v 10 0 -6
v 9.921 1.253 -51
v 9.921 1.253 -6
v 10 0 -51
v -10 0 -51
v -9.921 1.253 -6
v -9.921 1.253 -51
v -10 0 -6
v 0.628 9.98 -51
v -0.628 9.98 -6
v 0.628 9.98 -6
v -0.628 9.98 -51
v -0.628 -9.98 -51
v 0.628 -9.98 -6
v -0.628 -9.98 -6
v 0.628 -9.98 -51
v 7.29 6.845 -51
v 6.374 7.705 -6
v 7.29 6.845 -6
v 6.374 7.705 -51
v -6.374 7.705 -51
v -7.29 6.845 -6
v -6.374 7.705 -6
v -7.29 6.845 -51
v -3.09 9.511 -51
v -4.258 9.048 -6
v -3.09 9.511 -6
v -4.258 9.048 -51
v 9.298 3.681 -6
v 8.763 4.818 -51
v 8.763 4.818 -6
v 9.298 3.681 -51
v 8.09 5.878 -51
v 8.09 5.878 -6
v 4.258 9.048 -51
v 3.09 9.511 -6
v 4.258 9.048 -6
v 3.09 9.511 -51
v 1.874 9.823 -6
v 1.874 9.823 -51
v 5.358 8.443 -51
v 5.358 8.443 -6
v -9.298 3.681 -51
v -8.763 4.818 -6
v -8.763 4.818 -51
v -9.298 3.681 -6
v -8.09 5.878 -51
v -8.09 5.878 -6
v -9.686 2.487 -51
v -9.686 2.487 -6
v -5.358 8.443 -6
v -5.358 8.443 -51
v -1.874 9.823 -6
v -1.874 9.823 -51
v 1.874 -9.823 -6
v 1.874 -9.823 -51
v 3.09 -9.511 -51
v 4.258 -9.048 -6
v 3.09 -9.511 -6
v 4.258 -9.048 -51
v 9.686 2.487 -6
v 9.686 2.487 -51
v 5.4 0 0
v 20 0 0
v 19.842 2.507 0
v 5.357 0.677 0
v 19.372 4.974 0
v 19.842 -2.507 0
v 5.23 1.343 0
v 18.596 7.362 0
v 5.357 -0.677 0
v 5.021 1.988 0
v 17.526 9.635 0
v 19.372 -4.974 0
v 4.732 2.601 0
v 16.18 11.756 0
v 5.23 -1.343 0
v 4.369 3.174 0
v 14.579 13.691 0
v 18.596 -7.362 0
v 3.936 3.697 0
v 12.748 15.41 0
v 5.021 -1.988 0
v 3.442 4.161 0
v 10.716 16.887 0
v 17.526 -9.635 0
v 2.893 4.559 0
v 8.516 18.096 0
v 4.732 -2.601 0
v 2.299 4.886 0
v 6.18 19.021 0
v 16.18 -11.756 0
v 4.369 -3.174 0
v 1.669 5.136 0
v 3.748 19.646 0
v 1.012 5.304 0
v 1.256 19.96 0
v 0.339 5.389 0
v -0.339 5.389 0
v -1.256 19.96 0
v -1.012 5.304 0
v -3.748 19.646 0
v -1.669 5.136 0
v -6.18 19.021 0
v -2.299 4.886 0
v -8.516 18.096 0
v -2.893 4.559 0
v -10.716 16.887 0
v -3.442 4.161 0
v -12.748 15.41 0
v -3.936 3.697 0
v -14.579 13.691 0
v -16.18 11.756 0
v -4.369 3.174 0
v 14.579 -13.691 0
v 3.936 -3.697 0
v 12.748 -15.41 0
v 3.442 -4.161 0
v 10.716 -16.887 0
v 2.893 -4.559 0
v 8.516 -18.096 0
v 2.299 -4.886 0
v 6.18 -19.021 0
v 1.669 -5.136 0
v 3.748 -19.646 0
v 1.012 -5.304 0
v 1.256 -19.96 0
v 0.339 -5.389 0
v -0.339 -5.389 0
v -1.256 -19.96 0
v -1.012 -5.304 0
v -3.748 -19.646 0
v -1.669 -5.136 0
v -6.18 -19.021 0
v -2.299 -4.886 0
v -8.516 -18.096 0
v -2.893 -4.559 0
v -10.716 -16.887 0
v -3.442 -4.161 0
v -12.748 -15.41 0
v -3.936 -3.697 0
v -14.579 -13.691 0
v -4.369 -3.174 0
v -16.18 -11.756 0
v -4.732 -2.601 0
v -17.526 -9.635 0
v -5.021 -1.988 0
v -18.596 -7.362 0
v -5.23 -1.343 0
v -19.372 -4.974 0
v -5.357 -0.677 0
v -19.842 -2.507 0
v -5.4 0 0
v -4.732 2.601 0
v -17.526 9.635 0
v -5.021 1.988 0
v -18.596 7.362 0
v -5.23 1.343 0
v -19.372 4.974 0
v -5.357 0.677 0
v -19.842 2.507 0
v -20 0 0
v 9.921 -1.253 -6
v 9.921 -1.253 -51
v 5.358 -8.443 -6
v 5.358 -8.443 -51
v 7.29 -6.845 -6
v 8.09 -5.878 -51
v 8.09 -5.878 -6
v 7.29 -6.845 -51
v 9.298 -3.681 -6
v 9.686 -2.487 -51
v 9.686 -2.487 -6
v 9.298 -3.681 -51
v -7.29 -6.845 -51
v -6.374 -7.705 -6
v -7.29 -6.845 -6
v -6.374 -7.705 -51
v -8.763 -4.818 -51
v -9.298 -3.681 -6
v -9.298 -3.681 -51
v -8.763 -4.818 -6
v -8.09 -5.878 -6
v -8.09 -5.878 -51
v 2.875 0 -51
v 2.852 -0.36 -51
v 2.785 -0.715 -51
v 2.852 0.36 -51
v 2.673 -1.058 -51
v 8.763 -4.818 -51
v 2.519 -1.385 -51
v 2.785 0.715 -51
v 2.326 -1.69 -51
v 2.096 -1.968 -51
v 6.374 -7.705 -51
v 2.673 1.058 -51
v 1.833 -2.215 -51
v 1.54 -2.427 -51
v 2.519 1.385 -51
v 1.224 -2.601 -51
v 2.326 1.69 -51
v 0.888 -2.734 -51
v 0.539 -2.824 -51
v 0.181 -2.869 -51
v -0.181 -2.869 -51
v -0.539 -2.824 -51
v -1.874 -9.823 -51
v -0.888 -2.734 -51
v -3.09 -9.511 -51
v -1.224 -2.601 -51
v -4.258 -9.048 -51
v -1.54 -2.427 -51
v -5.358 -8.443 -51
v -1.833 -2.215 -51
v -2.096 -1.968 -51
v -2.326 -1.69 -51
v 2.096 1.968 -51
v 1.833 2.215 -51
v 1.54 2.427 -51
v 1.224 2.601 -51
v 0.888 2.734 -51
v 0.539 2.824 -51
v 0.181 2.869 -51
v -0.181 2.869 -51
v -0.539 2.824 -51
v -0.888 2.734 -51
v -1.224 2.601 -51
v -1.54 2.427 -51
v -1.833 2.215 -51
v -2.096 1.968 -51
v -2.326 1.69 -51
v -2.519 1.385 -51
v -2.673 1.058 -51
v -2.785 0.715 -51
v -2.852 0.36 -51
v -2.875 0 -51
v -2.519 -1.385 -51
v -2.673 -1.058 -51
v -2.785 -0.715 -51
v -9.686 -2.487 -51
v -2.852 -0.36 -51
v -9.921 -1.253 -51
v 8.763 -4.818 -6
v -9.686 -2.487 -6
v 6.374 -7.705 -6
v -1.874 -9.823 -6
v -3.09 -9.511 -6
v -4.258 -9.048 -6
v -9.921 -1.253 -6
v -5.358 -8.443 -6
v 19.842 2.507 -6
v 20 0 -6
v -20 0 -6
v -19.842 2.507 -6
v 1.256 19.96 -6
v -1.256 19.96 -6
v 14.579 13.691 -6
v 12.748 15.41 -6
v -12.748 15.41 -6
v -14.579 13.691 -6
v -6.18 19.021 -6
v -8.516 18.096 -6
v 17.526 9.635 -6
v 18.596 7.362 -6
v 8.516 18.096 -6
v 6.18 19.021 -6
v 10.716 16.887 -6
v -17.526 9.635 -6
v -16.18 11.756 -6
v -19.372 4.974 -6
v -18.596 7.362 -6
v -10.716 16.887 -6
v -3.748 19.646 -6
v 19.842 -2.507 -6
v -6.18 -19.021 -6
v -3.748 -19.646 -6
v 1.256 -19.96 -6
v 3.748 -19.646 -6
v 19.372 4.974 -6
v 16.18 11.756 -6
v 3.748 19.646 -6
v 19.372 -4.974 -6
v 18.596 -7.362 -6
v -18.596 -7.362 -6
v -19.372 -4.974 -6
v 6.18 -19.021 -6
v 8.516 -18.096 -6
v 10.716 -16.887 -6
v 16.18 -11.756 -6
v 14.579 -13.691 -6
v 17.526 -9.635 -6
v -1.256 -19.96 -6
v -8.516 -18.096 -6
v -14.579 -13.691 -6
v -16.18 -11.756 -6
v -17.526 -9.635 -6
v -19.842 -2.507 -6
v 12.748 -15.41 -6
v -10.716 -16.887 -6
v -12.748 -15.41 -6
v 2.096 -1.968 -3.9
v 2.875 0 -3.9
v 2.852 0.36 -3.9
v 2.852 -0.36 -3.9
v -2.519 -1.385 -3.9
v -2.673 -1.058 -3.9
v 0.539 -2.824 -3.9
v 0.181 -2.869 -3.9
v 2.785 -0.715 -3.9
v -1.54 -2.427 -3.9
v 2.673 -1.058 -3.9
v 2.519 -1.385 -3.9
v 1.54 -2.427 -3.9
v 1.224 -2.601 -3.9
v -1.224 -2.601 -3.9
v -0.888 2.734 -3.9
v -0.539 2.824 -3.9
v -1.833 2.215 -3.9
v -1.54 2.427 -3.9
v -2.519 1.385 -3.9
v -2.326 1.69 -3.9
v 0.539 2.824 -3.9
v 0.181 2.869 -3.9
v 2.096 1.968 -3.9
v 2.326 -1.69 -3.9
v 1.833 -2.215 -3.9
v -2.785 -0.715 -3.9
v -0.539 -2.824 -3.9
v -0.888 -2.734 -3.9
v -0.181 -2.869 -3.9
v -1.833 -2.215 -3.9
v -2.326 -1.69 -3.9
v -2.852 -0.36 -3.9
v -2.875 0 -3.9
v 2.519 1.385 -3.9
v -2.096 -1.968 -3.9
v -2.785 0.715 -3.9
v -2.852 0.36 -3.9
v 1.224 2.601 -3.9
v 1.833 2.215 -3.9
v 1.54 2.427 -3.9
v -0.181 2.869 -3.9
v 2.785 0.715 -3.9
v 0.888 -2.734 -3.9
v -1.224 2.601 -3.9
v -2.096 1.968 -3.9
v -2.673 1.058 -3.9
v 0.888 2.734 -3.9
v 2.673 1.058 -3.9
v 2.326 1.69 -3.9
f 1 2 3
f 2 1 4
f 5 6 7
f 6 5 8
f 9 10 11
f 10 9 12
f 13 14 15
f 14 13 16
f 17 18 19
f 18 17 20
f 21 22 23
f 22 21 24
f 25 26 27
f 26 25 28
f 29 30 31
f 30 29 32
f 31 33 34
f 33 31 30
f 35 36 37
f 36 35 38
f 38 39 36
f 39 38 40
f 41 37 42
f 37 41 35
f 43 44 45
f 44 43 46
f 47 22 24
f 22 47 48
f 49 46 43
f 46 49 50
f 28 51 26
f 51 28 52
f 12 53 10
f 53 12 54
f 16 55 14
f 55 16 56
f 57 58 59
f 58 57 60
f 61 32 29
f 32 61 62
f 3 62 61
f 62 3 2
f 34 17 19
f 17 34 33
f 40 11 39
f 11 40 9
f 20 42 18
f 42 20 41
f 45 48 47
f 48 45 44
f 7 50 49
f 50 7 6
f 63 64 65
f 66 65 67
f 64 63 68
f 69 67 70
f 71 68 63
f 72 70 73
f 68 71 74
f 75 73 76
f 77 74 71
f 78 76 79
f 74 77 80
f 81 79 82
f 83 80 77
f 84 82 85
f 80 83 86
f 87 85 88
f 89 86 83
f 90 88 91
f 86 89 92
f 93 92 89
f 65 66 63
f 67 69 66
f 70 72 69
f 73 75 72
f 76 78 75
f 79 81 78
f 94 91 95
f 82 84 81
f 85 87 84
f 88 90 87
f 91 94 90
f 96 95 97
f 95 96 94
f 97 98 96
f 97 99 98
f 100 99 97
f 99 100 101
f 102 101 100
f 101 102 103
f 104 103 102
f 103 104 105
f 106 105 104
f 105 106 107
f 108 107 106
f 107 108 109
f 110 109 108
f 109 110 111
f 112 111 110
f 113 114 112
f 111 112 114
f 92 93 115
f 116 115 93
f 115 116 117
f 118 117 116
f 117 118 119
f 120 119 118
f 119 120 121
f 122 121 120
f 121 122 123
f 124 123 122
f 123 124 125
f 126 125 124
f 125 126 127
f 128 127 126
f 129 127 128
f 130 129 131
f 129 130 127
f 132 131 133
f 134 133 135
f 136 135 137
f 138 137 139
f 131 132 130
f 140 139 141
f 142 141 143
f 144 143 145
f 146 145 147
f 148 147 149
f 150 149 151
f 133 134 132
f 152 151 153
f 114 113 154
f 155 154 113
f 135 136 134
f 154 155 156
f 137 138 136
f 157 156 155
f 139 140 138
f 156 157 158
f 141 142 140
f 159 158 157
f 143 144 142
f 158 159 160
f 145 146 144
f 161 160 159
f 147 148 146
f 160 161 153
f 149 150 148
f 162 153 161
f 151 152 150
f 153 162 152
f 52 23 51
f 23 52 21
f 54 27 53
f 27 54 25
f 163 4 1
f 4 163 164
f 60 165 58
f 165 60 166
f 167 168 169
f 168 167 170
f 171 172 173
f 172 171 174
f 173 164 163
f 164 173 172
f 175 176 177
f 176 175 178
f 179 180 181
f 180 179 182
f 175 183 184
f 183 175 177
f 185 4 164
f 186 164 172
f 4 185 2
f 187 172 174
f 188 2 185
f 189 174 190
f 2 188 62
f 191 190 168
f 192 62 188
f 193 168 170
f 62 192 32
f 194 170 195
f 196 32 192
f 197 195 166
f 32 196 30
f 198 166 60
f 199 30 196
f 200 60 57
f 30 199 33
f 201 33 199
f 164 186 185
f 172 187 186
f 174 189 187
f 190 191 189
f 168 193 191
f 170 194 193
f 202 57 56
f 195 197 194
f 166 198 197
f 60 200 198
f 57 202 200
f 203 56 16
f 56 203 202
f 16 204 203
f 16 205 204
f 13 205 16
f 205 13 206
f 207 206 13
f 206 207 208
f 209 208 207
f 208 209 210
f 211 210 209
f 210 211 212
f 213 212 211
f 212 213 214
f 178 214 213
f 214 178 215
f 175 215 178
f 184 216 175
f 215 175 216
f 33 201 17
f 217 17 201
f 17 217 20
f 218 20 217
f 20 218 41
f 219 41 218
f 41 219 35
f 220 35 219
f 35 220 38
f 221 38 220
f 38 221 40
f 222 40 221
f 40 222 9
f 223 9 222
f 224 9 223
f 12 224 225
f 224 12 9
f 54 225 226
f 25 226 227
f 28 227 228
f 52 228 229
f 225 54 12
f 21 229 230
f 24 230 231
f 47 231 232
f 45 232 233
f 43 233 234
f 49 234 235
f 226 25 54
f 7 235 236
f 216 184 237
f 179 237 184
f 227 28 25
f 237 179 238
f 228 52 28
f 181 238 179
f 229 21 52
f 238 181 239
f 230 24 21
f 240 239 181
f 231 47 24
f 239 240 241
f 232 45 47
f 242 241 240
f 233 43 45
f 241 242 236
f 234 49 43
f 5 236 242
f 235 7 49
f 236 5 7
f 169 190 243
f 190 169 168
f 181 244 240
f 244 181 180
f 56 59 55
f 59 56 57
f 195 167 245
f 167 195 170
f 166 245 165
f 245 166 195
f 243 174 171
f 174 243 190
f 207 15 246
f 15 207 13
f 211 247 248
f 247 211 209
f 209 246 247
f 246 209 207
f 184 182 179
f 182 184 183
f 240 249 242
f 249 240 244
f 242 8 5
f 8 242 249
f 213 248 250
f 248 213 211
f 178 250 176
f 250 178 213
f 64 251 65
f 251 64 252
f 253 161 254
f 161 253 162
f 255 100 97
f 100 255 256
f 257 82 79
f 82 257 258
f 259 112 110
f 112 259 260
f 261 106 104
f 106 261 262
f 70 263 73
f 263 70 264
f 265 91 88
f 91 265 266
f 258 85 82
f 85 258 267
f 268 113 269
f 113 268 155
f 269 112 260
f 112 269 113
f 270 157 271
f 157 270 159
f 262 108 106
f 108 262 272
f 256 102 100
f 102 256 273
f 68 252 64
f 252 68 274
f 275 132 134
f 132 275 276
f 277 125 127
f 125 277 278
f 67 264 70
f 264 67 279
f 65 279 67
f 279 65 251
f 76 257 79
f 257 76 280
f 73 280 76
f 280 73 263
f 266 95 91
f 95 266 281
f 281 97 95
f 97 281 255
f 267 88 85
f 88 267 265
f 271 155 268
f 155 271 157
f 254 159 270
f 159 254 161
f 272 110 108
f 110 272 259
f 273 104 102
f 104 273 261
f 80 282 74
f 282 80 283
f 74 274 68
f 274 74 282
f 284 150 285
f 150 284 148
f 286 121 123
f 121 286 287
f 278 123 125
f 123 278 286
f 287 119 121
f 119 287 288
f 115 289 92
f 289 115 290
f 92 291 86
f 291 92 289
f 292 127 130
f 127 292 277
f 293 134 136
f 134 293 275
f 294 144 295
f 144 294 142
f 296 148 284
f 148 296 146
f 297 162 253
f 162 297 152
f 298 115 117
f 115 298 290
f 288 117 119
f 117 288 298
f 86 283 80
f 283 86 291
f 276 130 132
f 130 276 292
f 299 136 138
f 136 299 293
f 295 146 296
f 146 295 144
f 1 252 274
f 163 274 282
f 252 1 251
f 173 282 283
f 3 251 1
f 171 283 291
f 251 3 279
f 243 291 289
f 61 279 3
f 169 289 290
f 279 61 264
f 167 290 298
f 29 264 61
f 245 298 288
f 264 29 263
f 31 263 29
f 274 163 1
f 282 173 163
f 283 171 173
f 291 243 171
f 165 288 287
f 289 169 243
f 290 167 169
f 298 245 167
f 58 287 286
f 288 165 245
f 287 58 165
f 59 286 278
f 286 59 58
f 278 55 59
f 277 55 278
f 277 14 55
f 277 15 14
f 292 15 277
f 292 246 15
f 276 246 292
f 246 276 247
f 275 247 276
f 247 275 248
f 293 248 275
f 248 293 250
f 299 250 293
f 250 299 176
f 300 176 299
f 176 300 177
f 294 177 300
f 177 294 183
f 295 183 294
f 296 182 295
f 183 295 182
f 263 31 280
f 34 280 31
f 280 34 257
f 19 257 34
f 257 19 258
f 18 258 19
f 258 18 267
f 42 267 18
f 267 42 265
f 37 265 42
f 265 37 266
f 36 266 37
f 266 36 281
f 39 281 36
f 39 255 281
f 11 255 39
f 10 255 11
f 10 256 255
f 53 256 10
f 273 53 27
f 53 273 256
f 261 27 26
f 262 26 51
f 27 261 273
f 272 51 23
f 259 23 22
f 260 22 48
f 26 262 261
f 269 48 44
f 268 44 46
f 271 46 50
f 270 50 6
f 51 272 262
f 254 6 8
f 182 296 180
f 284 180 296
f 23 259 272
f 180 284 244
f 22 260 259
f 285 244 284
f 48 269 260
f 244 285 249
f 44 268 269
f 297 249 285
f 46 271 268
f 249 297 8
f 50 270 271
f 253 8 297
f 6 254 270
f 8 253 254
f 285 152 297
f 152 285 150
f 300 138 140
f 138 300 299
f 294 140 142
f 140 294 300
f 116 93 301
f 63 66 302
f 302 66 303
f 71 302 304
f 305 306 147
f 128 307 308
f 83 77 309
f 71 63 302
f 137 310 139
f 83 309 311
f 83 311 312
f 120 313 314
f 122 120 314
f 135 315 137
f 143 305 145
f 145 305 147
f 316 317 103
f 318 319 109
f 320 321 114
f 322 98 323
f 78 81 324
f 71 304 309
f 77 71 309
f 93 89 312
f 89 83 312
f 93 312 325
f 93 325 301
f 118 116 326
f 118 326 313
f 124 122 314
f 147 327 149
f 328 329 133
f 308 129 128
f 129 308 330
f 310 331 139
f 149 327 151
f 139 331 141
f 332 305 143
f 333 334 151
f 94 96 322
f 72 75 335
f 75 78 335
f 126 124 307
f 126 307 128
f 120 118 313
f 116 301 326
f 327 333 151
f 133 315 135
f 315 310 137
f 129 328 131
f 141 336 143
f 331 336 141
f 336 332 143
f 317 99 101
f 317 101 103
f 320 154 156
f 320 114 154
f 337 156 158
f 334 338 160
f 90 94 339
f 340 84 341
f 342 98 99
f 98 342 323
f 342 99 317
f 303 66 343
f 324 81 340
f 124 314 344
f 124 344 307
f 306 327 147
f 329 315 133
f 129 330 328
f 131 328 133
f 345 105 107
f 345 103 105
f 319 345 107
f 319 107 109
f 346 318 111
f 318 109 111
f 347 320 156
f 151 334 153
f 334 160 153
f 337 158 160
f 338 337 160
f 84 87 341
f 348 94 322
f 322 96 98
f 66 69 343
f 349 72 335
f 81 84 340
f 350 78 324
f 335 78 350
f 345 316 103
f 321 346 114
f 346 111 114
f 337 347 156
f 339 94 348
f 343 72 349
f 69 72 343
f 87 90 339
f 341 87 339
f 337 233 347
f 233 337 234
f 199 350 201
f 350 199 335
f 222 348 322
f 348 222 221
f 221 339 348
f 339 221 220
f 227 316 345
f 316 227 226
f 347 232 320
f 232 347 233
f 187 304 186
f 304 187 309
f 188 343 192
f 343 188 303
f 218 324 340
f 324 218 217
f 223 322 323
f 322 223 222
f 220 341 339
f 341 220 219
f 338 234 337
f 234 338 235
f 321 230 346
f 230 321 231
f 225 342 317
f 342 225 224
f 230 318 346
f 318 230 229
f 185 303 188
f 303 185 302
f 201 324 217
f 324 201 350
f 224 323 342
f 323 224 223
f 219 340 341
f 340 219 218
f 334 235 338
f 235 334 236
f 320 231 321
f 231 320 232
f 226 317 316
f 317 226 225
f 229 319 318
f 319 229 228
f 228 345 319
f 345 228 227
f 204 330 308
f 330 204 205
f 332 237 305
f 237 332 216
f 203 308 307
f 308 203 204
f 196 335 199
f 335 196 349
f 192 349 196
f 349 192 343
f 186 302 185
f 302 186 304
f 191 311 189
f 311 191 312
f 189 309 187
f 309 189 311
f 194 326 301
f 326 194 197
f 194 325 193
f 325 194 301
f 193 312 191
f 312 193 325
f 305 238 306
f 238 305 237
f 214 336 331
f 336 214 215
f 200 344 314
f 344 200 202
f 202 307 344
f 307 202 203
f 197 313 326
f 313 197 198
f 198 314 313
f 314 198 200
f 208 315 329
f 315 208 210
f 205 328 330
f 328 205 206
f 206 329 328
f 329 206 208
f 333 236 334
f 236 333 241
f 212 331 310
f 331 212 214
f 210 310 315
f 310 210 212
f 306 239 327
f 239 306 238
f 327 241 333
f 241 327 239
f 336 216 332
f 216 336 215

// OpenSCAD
$fn = 50;


difference() {
	union() {
		translate(v = [0, 0, -51.0000000000]) {
			cylinder(h = 51, r = 10.0000000000);
		}
		translate(v = [0, 0, -6.0000000000]) {
			cylinder(h = 6, r = 20.0000000000);
		}
	}
	union() {
		translate(v = [0, 0, 0]) {
			rotate(a = [0, 0, 0]) {
				difference() {
					union() {
						#translate(v = [0, 0, -51.0000000000]) {
							cylinder(h = 51, r = 2.6000000000);
						}
						#translate(v = [0, 0, -3.9000000000]) {
							cylinder(h = 3.9000000000, r = 10.0000000000, r1 = 2.8750000000, r2 = 5.4000000000);
						}
						#translate(v = [0, 0, -51.0000000000]) {
							cylinder(h = 51, r = 2.8750000000);
						}
						#translate(v = [0, 0, -51.0000000000]) {
							cylinder(h = 51, r = 2.6000000000);
						}
					}
					union();
				}
			}
		}
	}
}
